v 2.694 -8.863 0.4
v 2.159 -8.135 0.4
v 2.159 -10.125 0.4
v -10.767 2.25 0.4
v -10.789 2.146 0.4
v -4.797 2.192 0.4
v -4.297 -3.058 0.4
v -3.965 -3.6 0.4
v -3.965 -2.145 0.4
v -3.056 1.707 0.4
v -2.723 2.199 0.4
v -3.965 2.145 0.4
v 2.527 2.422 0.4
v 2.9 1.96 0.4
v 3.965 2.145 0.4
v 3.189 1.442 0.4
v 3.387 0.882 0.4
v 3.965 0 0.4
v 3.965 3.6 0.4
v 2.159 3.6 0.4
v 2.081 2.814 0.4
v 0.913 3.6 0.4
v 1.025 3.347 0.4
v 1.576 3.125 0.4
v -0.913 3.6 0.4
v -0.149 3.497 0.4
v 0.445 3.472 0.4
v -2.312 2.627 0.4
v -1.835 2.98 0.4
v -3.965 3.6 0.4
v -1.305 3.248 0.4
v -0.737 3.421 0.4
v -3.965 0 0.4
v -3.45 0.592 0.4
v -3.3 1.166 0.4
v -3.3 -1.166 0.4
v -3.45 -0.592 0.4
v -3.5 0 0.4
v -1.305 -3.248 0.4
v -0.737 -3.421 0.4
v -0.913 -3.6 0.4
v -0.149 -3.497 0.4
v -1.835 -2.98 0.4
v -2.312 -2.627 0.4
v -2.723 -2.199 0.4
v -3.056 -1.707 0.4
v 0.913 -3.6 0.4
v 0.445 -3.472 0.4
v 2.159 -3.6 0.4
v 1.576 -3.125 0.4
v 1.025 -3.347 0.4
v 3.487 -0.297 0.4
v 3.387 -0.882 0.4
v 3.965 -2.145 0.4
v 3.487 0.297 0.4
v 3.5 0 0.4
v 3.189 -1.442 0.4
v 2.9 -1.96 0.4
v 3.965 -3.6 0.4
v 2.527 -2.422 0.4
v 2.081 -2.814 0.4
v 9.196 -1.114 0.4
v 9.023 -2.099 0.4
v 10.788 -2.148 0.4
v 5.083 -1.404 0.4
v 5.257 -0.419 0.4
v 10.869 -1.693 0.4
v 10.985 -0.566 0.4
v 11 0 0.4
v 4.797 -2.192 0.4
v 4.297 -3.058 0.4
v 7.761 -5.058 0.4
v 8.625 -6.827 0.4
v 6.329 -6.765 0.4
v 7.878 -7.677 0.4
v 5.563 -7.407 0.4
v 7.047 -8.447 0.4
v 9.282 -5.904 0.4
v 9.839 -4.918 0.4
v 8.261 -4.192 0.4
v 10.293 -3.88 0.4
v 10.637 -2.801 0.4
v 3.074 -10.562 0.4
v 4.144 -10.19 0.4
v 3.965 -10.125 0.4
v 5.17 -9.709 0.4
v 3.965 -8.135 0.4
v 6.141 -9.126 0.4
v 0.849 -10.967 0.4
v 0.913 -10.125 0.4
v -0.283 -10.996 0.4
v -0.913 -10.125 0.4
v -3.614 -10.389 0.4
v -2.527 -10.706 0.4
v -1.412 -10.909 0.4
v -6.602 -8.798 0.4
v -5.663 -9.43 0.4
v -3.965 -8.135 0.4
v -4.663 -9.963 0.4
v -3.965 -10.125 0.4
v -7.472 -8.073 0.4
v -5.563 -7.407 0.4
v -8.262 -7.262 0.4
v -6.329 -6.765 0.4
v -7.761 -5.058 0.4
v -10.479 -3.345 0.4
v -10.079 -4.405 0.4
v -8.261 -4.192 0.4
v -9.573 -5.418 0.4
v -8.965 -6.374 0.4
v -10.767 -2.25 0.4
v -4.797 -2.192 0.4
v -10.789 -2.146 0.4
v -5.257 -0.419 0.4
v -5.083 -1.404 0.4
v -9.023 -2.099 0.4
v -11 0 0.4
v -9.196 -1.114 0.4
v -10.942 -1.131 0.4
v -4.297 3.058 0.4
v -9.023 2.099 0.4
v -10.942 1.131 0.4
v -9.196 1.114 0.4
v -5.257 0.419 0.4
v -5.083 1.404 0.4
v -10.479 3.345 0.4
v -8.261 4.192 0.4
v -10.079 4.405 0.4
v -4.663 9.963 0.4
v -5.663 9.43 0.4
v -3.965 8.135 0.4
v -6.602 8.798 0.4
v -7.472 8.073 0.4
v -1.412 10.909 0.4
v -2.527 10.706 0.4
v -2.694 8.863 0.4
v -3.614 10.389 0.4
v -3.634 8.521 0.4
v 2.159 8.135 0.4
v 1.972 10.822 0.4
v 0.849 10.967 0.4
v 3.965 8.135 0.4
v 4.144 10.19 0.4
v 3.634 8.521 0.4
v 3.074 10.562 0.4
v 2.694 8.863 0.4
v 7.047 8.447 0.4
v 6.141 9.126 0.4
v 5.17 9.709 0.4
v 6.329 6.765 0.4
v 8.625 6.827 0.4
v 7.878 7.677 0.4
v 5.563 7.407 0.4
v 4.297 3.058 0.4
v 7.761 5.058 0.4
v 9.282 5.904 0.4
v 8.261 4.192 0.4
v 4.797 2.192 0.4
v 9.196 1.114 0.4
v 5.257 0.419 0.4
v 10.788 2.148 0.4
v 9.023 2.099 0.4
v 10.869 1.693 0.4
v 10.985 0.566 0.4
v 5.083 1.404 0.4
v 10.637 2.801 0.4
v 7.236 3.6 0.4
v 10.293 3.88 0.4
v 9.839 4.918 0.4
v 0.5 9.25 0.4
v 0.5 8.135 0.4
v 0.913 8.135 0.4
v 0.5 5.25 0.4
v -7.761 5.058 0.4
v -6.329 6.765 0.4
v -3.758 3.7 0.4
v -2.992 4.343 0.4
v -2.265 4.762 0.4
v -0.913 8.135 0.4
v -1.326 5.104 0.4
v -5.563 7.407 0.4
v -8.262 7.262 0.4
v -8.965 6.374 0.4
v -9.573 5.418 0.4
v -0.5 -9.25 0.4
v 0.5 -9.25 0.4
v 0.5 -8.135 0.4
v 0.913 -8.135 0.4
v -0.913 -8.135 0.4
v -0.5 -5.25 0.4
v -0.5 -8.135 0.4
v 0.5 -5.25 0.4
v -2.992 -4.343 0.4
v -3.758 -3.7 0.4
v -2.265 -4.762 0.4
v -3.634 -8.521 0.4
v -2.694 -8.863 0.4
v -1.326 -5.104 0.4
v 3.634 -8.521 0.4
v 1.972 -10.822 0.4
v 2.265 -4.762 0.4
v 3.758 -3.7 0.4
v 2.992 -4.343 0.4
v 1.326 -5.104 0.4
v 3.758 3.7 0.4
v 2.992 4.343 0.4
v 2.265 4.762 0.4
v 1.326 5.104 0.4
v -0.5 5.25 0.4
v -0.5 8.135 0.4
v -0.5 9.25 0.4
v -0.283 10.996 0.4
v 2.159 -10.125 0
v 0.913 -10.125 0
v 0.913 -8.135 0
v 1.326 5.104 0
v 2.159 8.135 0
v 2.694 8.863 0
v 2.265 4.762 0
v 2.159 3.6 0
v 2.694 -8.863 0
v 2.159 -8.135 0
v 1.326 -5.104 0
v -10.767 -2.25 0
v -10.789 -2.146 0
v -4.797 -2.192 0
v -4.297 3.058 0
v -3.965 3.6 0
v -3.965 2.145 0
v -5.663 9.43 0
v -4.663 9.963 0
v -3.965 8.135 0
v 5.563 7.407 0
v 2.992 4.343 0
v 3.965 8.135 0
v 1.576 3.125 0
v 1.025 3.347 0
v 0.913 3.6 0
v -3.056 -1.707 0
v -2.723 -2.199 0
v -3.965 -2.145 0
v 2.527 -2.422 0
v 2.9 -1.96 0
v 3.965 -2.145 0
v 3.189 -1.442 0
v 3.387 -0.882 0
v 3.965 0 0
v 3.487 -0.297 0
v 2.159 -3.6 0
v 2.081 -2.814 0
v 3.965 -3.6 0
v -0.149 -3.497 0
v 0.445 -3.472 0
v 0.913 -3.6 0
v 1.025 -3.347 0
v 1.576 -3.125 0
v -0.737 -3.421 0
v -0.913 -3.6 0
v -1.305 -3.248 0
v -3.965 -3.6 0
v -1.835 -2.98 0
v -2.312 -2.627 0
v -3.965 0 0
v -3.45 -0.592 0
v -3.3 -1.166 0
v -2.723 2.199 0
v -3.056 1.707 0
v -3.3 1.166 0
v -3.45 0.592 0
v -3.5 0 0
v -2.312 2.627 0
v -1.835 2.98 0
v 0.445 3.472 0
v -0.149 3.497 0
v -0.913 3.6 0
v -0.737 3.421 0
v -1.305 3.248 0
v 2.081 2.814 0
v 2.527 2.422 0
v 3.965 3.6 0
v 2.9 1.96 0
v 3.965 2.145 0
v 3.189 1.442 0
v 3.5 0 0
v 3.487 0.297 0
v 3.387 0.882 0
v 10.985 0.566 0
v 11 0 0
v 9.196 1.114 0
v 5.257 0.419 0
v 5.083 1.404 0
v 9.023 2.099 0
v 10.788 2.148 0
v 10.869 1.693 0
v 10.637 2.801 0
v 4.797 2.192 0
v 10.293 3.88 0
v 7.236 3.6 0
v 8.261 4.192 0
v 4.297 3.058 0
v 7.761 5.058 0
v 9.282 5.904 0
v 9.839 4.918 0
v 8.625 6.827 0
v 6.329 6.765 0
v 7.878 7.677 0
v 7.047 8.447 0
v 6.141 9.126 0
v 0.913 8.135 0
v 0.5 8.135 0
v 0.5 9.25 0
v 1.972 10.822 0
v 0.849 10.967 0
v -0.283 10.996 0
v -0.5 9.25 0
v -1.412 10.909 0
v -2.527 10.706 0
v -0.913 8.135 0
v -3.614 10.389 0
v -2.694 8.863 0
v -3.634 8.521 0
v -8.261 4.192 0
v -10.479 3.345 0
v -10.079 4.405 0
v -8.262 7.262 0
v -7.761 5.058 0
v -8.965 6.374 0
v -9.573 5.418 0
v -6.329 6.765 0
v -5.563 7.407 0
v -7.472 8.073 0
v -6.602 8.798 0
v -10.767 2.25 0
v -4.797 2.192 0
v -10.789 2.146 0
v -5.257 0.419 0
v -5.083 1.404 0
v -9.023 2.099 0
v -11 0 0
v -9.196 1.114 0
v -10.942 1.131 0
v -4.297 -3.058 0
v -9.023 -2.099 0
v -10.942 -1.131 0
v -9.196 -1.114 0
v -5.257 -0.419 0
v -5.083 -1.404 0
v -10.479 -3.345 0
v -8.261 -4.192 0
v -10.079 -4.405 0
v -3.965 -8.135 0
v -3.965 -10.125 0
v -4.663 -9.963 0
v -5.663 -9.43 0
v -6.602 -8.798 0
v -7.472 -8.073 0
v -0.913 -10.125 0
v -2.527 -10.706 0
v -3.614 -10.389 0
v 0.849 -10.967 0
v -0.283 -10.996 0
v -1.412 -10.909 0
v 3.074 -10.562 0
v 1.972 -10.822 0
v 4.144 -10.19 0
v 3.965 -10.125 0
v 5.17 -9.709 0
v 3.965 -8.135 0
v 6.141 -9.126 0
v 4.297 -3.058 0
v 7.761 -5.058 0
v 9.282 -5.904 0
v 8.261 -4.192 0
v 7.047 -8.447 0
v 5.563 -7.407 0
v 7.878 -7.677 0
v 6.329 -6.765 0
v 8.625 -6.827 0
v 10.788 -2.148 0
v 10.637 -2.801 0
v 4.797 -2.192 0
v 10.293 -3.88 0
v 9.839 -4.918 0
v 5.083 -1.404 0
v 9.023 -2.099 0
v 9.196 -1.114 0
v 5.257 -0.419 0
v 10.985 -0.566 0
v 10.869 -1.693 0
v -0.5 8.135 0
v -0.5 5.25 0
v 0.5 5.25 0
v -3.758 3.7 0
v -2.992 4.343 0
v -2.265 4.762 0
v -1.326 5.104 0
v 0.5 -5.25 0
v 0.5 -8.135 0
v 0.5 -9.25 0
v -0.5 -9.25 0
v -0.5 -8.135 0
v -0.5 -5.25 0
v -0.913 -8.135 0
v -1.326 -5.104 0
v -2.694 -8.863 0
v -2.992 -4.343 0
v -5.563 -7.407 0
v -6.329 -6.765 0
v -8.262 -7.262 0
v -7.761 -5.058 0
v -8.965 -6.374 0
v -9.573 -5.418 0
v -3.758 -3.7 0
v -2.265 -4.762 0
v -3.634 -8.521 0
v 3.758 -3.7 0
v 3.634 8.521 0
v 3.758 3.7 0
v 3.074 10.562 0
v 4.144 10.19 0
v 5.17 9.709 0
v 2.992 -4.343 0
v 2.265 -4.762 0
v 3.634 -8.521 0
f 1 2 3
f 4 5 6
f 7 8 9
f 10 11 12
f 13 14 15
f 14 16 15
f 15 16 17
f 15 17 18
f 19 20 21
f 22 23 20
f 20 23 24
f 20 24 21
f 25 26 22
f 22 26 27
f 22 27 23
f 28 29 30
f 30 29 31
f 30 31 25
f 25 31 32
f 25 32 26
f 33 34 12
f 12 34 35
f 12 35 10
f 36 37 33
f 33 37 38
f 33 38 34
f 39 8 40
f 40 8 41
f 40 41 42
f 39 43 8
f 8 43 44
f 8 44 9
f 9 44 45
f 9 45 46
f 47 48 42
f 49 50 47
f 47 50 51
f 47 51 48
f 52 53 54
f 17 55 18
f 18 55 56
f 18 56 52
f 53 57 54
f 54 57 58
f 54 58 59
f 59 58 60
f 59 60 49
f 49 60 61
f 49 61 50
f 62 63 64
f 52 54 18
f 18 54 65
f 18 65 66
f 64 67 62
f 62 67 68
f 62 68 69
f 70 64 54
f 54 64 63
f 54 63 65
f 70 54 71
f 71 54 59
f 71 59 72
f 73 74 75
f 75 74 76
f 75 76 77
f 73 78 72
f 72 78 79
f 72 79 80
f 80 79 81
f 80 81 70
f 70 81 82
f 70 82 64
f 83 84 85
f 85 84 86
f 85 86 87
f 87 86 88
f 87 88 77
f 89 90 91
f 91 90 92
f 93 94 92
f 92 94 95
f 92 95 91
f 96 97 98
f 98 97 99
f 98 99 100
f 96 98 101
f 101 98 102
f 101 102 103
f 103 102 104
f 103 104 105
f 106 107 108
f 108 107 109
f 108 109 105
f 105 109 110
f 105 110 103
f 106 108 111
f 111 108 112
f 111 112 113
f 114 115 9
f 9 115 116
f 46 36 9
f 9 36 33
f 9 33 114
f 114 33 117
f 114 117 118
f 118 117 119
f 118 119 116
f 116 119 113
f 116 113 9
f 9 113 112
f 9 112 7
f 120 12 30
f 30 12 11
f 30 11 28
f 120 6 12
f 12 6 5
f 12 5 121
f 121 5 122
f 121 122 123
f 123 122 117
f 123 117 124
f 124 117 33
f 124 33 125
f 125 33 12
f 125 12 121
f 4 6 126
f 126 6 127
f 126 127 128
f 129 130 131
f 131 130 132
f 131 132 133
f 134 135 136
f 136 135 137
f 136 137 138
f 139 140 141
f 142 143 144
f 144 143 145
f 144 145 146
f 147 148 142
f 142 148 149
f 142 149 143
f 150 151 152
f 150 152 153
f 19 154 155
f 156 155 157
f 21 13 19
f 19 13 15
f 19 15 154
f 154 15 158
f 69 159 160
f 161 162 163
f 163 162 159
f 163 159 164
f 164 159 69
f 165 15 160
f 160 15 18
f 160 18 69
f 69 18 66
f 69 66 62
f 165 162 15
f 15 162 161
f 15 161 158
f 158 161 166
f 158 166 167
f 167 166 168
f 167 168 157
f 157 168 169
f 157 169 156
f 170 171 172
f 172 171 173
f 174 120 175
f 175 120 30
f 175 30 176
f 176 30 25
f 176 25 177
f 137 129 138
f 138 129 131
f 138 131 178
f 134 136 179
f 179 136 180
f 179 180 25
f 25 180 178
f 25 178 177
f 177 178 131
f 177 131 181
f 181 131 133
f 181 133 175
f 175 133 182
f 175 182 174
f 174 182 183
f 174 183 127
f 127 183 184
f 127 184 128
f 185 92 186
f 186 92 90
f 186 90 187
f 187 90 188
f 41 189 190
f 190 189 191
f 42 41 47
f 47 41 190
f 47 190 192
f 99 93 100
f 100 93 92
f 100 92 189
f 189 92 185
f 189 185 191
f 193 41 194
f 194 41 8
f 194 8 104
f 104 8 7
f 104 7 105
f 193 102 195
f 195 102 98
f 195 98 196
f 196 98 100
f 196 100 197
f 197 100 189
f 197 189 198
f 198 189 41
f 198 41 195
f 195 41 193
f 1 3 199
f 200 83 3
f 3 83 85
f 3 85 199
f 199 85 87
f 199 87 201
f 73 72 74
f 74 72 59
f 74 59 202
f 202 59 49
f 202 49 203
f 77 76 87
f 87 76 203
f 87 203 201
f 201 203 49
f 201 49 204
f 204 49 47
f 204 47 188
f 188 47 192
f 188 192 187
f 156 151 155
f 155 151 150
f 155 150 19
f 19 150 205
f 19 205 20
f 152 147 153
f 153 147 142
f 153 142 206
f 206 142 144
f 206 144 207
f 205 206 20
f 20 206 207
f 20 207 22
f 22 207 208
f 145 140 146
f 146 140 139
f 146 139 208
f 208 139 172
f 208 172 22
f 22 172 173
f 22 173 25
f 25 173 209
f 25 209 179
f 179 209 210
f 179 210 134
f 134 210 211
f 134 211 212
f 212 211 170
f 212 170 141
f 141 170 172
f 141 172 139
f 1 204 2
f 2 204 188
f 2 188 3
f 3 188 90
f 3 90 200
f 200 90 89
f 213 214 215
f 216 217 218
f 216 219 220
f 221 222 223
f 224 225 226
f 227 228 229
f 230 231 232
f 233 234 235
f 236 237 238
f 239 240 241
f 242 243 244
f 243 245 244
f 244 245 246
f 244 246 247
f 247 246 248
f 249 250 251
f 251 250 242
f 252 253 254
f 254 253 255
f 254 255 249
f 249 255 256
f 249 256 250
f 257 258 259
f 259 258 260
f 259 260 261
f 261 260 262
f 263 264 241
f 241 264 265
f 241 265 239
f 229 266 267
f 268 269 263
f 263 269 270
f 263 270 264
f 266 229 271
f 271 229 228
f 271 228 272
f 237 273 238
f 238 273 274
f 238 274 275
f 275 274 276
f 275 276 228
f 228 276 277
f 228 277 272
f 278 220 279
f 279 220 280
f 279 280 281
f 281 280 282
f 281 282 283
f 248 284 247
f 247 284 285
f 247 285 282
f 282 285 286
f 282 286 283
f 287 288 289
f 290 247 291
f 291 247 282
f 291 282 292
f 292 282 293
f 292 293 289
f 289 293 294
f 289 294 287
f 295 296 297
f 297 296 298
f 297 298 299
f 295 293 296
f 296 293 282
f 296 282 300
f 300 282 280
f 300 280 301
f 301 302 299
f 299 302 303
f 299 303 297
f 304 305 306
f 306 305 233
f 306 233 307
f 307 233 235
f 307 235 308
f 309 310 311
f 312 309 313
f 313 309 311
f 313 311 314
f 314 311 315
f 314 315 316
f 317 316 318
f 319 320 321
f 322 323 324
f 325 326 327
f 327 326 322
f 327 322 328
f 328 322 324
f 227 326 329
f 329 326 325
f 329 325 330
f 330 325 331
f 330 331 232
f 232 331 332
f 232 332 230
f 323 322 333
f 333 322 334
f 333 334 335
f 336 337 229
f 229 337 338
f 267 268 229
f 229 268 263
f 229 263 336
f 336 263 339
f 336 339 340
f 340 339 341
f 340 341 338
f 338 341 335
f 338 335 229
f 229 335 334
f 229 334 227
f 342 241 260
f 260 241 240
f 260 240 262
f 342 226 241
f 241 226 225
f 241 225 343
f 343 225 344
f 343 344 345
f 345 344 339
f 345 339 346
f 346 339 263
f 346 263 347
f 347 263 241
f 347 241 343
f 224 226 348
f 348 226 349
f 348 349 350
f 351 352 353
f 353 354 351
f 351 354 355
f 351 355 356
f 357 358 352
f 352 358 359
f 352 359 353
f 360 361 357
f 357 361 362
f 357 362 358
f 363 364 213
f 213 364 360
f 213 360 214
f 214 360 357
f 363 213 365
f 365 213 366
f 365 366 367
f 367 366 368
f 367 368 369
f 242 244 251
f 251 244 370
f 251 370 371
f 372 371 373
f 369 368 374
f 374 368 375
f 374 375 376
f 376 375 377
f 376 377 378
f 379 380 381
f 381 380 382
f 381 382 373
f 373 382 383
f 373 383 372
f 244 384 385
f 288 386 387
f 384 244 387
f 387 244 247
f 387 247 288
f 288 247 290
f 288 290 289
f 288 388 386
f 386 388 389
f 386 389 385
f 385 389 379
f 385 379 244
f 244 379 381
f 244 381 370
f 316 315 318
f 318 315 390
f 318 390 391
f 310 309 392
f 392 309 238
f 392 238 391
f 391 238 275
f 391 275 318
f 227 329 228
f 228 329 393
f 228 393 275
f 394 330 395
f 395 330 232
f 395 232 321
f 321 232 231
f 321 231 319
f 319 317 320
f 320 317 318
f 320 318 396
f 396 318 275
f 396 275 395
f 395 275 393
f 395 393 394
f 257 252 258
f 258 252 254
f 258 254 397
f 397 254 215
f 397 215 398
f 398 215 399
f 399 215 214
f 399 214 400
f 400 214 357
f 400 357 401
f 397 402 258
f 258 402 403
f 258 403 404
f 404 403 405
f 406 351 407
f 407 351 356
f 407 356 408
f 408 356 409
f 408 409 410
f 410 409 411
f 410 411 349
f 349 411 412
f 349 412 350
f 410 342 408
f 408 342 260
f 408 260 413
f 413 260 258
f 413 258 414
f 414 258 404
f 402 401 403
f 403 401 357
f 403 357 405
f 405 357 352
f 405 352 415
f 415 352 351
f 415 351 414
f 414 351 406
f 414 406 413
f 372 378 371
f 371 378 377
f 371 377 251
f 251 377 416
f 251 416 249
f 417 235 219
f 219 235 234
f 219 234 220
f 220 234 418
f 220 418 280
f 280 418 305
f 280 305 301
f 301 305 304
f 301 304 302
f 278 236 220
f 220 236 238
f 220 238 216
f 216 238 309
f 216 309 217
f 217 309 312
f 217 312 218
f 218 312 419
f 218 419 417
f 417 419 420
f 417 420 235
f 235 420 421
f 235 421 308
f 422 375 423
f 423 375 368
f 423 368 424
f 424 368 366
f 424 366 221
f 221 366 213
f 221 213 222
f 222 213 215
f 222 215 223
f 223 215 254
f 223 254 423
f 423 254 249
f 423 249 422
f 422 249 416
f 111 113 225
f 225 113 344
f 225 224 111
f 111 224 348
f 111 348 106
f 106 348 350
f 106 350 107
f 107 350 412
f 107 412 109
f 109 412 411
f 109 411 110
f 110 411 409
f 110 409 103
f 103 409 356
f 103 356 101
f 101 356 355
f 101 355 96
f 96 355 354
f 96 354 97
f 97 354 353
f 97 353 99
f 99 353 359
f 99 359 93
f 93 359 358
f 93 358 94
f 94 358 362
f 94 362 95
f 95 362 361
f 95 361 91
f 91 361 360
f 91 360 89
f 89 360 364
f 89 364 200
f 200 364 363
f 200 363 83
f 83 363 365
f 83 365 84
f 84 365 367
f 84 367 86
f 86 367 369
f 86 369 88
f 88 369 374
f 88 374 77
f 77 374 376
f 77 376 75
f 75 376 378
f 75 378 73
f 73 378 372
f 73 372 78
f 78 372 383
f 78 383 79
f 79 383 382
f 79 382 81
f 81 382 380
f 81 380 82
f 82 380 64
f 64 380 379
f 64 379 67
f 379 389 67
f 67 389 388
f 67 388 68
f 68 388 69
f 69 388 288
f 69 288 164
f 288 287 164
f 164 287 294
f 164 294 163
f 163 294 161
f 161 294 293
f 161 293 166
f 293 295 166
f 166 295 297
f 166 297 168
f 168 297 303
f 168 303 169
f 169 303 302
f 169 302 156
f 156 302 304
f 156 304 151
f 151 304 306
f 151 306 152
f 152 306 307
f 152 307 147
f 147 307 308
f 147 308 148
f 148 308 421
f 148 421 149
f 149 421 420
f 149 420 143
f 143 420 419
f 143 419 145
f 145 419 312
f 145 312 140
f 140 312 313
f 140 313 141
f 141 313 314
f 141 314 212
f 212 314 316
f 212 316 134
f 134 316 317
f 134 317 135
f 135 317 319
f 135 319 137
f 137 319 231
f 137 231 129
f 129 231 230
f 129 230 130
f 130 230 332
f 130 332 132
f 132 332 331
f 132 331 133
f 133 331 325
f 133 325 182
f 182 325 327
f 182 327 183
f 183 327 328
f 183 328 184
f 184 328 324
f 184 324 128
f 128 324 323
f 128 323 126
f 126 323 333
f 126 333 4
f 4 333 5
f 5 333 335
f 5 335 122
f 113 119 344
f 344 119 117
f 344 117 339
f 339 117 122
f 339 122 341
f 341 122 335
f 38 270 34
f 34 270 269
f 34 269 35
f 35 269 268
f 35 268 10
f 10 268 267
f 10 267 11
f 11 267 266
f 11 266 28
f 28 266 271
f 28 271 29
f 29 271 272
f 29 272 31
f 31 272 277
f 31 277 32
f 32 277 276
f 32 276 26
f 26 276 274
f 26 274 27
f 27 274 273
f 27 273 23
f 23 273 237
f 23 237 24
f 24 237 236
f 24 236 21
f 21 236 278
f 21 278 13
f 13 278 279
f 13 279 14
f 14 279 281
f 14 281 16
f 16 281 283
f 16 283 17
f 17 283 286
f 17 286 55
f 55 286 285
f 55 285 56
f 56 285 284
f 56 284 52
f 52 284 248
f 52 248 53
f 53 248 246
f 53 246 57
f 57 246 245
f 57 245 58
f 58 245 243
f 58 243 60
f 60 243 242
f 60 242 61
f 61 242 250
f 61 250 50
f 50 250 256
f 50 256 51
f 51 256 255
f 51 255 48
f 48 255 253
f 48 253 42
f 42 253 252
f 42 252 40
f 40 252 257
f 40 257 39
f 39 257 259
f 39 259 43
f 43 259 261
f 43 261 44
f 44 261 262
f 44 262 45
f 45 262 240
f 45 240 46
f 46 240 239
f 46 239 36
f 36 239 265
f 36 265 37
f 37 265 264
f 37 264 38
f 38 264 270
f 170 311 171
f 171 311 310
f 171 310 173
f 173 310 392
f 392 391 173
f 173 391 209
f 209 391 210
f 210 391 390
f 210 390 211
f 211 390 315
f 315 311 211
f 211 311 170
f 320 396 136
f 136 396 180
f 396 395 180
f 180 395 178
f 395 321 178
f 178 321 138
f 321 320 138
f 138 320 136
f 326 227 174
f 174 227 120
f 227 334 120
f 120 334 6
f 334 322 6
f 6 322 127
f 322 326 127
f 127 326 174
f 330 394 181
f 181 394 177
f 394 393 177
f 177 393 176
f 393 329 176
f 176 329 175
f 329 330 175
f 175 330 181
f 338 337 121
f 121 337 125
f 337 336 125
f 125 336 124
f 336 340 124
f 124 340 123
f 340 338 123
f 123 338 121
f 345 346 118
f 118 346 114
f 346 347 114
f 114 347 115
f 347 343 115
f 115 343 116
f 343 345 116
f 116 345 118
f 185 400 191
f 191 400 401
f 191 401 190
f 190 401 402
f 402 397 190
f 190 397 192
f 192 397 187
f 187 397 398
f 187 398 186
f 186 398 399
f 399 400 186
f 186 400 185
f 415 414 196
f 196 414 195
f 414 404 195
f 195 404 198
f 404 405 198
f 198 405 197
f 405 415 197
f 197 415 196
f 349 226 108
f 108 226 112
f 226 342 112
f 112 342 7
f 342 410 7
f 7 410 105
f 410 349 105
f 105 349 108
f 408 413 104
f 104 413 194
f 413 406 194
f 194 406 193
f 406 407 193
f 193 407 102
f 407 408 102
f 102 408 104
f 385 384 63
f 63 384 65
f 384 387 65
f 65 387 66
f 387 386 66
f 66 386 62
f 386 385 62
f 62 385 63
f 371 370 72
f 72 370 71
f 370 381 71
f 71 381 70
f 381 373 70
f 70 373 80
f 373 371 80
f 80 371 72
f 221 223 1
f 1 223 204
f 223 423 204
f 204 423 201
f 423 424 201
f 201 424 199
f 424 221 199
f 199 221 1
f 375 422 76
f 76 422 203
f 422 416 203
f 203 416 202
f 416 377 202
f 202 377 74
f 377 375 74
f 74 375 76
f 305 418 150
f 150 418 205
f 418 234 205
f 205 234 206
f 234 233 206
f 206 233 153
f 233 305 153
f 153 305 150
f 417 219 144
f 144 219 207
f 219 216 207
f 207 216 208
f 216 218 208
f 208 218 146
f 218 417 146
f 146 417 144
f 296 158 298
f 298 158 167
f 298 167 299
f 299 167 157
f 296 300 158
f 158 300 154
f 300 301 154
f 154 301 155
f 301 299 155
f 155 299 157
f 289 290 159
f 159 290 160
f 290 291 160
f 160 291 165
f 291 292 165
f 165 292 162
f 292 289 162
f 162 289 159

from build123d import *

# Parameters (mm, degrees)
ESQUISSE1_R                  = 11
ESQUISSE1_R_2                = 3.5
BOSS_EXTRU_1_DEPTH           = 0.4
ESQUISSE2_W                  = 1
ESQUISSE2_H                  = 4
ENL_V_MAT_EXTRU_1_DEPTH      = 16.561490931
R_P_TITION_CIRCULAIRE1_COUNT = 18


with BuildPart() as part:
    # Esquisse1 → Boss.-Extru.1 (new body)
    with BuildSketch(Plane.XY):
        Circle(ESQUISSE1_R)
        Circle(ESQUISSE1_R_2, mode=Mode.SUBTRACT)
    extrude(amount=BOSS_EXTRU_1_DEPTH)

    # Esquisse2 → Enlèv. mat.-Extru.1 (cut, symmetric)
    with BuildSketch(Plane.XY.offset(0.4)):
        with Locations((0, 7.25)):
            Rectangle(ESQUISSE2_W, ESQUISSE2_H)
    enl_v_mat_extru_1 = extrude(amount=ENL_V_MAT_EXTRU_1_DEPTH, both=True, mode=Mode.SUBTRACT)

    # Répétition circulaire1: Enlèv. mat.-Extru.1 ×18 about axis
    r_p_tition_circulaire1_axis = Axis((0, 0, 0), (0, 0, 1))
    for i in range(1, R_P_TITION_CIRCULAIRE1_COUNT):
        add(enl_v_mat_extru_1.rotate(r_p_tition_circulaire1_axis, i * 360 / R_P_TITION_CIRCULAIRE1_COUNT), mode=Mode.SUBTRACT)


solid = part.part
